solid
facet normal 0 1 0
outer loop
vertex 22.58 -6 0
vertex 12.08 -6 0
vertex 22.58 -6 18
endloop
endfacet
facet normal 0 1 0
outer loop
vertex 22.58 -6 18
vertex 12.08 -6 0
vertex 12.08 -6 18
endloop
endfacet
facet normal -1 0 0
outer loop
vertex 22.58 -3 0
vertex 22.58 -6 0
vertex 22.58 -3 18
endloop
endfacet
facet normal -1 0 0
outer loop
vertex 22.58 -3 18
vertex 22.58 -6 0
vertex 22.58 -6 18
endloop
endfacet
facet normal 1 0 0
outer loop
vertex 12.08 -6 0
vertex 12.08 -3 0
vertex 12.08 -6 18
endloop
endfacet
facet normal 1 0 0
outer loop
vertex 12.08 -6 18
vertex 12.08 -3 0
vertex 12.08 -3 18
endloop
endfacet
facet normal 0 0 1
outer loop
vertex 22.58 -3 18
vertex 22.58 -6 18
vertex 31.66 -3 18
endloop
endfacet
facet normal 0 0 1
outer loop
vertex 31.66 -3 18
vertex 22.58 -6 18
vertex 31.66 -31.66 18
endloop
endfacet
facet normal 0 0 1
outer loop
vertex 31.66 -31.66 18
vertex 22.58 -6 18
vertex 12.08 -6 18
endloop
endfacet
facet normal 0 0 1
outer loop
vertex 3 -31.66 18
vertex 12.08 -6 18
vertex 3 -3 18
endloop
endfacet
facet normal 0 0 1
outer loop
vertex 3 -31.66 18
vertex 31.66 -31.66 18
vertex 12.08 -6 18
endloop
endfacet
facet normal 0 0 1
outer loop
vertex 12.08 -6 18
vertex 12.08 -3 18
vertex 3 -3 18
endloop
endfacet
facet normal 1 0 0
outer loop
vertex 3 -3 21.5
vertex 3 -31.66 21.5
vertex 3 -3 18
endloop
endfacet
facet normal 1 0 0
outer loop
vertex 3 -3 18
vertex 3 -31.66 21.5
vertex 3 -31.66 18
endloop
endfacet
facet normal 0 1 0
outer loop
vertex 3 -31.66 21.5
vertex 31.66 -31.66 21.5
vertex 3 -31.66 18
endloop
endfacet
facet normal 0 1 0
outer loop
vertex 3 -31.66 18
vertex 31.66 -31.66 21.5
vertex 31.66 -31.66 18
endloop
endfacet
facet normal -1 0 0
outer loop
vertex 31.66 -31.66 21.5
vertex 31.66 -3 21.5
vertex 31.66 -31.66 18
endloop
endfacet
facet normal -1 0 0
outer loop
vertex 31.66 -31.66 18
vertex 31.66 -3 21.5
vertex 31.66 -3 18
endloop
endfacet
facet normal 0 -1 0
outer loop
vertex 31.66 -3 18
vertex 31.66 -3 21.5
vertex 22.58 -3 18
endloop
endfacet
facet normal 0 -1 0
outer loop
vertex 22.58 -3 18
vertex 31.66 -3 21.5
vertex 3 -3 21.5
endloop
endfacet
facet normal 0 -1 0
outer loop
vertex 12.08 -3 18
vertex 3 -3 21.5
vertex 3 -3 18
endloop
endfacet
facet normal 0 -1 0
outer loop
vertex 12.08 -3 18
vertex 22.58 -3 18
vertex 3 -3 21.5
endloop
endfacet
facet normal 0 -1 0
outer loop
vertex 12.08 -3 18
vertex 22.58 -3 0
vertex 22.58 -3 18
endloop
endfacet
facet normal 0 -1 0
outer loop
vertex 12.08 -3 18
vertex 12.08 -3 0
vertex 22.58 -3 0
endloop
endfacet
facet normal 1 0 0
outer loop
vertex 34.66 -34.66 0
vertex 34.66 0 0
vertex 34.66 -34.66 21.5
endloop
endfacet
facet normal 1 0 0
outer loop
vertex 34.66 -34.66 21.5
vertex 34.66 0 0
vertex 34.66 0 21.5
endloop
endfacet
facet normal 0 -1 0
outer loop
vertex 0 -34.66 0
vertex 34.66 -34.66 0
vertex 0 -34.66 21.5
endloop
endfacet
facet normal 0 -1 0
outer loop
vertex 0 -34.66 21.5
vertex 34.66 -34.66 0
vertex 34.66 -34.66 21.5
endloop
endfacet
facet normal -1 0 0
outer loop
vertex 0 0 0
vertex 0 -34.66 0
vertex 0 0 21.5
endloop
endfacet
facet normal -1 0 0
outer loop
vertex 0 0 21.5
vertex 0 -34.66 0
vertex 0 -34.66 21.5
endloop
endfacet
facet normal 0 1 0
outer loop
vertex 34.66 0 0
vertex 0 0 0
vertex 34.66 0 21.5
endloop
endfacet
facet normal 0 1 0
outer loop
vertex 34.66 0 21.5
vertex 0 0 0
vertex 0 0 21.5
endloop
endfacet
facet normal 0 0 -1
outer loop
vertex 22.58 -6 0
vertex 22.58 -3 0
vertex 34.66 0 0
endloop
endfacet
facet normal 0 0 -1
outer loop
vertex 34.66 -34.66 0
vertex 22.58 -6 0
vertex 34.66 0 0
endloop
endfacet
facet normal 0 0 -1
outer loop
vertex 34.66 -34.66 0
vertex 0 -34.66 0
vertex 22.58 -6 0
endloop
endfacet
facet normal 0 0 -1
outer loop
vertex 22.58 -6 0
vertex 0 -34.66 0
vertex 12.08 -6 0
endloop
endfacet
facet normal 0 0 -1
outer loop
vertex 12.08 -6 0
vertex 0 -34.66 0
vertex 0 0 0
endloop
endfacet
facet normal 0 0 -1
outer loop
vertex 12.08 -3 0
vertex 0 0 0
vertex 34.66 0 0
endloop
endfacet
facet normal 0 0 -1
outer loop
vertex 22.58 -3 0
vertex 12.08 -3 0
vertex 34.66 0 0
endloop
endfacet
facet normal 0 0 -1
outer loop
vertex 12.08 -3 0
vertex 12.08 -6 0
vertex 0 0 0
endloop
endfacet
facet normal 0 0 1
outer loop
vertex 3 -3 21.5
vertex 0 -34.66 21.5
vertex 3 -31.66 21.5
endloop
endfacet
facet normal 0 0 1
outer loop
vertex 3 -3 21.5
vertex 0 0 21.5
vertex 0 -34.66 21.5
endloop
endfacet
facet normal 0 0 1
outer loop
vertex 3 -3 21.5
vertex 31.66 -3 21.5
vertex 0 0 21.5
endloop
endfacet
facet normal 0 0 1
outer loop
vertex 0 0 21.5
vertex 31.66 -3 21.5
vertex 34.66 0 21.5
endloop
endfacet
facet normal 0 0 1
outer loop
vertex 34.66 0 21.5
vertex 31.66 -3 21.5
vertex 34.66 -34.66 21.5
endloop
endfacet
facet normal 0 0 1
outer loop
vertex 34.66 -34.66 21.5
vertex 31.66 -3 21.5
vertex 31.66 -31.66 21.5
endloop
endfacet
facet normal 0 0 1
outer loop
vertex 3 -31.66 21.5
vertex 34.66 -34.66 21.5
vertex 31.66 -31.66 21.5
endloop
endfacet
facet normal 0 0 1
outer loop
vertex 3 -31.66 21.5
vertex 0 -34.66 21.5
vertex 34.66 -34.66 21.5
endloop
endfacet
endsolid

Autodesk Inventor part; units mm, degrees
ref_plane "YZ Plane" through (0, 0, 0) normal (1, 0, 0) x (0, 1, 0)
ref_plane "XZ Plane" through (0, 0, 0) normal (0, 1, 0) x (-1, 0, 0)
ref_plane "XY Plane" through (0, 0, 0) normal (0, 0, 1) x (1, 0, 0)
sketch "Sketch1" plane through (0, 0, 0) normal (0, 0, 1) x (1, 0, 0)
  line L0 (0, 0) -> (34.66, 0)
  line L1 (34.66, 0) -> (34.66, -34.66)
  line L2 (34.66, -34.66) -> (0, -34.66)
  line L3 (0, -34.66) -> (0, 0)
  dimension "d0" = 34.66
  dimension "d1" = 34.66
extrude "Extrusion1" add sketch "Sketch1" along normal blind 21.5
sketch "Sketch2" plane through (0, 0, 21.5) normal (0, 0, 1) x (1, 0, 0)
  line L0 (0, 0) -> (0, -34.66) projected
  line L1 (3, -3) -> (31.66, -3)
  line L2 (31.66, -3) -> (31.66, -31.66)
  line L3 (31.66, -31.66) -> (3, -31.66)
  line L4 (3, -31.66) -> (3, -3)
  line L5 (34.66, 0) -> (0, 0) projected
  line L6 (0, -34.66) -> (34.66, -34.66) projected
  line L7 (34.66, 0) -> (34.66, -34.66) projected
  dimension "d8" = 3
  dimension "d9" = 3
  dimension "d10" = 3
  dimension "d11" = 3
extrude "Extrusion2" cut sketch "Sketch2" against normal blind 3.5 contours L1 L2 L3 L4
sketch "Sketch3" plane through (0, 0, 18) normal (0, 0, 1) x (1, 0, 0)
  line L0 (12.08, -3) -> (12.08, -6)
  line L1 (12.08, -6) -> (22.58, -6)
  line L2 (22.58, -6) -> (22.58, -3)
  line L3 (12.08, -3) -> (22.58, -3)
  line L4 (3, -3) -> (31.66, -3) projected
  line L5 (3, -31.66) -> (3, -3) projected
  line L6 (31.66, -3) -> (31.66, -31.66) projected
  line L7 (31.66, -31.66) -> (3, -31.66) projected
  point P0 (0, 0)
  dimension "d18" = 9.08
  dimension "d19" = 9.08
  dimension "d20" = 3
  dimension "d21" = 28.66
extrude "Extrusion3" cut sketch "Sketch3" against normal blind 19 contours L3 L2 L1 L0
properties part number "Pantalla"
